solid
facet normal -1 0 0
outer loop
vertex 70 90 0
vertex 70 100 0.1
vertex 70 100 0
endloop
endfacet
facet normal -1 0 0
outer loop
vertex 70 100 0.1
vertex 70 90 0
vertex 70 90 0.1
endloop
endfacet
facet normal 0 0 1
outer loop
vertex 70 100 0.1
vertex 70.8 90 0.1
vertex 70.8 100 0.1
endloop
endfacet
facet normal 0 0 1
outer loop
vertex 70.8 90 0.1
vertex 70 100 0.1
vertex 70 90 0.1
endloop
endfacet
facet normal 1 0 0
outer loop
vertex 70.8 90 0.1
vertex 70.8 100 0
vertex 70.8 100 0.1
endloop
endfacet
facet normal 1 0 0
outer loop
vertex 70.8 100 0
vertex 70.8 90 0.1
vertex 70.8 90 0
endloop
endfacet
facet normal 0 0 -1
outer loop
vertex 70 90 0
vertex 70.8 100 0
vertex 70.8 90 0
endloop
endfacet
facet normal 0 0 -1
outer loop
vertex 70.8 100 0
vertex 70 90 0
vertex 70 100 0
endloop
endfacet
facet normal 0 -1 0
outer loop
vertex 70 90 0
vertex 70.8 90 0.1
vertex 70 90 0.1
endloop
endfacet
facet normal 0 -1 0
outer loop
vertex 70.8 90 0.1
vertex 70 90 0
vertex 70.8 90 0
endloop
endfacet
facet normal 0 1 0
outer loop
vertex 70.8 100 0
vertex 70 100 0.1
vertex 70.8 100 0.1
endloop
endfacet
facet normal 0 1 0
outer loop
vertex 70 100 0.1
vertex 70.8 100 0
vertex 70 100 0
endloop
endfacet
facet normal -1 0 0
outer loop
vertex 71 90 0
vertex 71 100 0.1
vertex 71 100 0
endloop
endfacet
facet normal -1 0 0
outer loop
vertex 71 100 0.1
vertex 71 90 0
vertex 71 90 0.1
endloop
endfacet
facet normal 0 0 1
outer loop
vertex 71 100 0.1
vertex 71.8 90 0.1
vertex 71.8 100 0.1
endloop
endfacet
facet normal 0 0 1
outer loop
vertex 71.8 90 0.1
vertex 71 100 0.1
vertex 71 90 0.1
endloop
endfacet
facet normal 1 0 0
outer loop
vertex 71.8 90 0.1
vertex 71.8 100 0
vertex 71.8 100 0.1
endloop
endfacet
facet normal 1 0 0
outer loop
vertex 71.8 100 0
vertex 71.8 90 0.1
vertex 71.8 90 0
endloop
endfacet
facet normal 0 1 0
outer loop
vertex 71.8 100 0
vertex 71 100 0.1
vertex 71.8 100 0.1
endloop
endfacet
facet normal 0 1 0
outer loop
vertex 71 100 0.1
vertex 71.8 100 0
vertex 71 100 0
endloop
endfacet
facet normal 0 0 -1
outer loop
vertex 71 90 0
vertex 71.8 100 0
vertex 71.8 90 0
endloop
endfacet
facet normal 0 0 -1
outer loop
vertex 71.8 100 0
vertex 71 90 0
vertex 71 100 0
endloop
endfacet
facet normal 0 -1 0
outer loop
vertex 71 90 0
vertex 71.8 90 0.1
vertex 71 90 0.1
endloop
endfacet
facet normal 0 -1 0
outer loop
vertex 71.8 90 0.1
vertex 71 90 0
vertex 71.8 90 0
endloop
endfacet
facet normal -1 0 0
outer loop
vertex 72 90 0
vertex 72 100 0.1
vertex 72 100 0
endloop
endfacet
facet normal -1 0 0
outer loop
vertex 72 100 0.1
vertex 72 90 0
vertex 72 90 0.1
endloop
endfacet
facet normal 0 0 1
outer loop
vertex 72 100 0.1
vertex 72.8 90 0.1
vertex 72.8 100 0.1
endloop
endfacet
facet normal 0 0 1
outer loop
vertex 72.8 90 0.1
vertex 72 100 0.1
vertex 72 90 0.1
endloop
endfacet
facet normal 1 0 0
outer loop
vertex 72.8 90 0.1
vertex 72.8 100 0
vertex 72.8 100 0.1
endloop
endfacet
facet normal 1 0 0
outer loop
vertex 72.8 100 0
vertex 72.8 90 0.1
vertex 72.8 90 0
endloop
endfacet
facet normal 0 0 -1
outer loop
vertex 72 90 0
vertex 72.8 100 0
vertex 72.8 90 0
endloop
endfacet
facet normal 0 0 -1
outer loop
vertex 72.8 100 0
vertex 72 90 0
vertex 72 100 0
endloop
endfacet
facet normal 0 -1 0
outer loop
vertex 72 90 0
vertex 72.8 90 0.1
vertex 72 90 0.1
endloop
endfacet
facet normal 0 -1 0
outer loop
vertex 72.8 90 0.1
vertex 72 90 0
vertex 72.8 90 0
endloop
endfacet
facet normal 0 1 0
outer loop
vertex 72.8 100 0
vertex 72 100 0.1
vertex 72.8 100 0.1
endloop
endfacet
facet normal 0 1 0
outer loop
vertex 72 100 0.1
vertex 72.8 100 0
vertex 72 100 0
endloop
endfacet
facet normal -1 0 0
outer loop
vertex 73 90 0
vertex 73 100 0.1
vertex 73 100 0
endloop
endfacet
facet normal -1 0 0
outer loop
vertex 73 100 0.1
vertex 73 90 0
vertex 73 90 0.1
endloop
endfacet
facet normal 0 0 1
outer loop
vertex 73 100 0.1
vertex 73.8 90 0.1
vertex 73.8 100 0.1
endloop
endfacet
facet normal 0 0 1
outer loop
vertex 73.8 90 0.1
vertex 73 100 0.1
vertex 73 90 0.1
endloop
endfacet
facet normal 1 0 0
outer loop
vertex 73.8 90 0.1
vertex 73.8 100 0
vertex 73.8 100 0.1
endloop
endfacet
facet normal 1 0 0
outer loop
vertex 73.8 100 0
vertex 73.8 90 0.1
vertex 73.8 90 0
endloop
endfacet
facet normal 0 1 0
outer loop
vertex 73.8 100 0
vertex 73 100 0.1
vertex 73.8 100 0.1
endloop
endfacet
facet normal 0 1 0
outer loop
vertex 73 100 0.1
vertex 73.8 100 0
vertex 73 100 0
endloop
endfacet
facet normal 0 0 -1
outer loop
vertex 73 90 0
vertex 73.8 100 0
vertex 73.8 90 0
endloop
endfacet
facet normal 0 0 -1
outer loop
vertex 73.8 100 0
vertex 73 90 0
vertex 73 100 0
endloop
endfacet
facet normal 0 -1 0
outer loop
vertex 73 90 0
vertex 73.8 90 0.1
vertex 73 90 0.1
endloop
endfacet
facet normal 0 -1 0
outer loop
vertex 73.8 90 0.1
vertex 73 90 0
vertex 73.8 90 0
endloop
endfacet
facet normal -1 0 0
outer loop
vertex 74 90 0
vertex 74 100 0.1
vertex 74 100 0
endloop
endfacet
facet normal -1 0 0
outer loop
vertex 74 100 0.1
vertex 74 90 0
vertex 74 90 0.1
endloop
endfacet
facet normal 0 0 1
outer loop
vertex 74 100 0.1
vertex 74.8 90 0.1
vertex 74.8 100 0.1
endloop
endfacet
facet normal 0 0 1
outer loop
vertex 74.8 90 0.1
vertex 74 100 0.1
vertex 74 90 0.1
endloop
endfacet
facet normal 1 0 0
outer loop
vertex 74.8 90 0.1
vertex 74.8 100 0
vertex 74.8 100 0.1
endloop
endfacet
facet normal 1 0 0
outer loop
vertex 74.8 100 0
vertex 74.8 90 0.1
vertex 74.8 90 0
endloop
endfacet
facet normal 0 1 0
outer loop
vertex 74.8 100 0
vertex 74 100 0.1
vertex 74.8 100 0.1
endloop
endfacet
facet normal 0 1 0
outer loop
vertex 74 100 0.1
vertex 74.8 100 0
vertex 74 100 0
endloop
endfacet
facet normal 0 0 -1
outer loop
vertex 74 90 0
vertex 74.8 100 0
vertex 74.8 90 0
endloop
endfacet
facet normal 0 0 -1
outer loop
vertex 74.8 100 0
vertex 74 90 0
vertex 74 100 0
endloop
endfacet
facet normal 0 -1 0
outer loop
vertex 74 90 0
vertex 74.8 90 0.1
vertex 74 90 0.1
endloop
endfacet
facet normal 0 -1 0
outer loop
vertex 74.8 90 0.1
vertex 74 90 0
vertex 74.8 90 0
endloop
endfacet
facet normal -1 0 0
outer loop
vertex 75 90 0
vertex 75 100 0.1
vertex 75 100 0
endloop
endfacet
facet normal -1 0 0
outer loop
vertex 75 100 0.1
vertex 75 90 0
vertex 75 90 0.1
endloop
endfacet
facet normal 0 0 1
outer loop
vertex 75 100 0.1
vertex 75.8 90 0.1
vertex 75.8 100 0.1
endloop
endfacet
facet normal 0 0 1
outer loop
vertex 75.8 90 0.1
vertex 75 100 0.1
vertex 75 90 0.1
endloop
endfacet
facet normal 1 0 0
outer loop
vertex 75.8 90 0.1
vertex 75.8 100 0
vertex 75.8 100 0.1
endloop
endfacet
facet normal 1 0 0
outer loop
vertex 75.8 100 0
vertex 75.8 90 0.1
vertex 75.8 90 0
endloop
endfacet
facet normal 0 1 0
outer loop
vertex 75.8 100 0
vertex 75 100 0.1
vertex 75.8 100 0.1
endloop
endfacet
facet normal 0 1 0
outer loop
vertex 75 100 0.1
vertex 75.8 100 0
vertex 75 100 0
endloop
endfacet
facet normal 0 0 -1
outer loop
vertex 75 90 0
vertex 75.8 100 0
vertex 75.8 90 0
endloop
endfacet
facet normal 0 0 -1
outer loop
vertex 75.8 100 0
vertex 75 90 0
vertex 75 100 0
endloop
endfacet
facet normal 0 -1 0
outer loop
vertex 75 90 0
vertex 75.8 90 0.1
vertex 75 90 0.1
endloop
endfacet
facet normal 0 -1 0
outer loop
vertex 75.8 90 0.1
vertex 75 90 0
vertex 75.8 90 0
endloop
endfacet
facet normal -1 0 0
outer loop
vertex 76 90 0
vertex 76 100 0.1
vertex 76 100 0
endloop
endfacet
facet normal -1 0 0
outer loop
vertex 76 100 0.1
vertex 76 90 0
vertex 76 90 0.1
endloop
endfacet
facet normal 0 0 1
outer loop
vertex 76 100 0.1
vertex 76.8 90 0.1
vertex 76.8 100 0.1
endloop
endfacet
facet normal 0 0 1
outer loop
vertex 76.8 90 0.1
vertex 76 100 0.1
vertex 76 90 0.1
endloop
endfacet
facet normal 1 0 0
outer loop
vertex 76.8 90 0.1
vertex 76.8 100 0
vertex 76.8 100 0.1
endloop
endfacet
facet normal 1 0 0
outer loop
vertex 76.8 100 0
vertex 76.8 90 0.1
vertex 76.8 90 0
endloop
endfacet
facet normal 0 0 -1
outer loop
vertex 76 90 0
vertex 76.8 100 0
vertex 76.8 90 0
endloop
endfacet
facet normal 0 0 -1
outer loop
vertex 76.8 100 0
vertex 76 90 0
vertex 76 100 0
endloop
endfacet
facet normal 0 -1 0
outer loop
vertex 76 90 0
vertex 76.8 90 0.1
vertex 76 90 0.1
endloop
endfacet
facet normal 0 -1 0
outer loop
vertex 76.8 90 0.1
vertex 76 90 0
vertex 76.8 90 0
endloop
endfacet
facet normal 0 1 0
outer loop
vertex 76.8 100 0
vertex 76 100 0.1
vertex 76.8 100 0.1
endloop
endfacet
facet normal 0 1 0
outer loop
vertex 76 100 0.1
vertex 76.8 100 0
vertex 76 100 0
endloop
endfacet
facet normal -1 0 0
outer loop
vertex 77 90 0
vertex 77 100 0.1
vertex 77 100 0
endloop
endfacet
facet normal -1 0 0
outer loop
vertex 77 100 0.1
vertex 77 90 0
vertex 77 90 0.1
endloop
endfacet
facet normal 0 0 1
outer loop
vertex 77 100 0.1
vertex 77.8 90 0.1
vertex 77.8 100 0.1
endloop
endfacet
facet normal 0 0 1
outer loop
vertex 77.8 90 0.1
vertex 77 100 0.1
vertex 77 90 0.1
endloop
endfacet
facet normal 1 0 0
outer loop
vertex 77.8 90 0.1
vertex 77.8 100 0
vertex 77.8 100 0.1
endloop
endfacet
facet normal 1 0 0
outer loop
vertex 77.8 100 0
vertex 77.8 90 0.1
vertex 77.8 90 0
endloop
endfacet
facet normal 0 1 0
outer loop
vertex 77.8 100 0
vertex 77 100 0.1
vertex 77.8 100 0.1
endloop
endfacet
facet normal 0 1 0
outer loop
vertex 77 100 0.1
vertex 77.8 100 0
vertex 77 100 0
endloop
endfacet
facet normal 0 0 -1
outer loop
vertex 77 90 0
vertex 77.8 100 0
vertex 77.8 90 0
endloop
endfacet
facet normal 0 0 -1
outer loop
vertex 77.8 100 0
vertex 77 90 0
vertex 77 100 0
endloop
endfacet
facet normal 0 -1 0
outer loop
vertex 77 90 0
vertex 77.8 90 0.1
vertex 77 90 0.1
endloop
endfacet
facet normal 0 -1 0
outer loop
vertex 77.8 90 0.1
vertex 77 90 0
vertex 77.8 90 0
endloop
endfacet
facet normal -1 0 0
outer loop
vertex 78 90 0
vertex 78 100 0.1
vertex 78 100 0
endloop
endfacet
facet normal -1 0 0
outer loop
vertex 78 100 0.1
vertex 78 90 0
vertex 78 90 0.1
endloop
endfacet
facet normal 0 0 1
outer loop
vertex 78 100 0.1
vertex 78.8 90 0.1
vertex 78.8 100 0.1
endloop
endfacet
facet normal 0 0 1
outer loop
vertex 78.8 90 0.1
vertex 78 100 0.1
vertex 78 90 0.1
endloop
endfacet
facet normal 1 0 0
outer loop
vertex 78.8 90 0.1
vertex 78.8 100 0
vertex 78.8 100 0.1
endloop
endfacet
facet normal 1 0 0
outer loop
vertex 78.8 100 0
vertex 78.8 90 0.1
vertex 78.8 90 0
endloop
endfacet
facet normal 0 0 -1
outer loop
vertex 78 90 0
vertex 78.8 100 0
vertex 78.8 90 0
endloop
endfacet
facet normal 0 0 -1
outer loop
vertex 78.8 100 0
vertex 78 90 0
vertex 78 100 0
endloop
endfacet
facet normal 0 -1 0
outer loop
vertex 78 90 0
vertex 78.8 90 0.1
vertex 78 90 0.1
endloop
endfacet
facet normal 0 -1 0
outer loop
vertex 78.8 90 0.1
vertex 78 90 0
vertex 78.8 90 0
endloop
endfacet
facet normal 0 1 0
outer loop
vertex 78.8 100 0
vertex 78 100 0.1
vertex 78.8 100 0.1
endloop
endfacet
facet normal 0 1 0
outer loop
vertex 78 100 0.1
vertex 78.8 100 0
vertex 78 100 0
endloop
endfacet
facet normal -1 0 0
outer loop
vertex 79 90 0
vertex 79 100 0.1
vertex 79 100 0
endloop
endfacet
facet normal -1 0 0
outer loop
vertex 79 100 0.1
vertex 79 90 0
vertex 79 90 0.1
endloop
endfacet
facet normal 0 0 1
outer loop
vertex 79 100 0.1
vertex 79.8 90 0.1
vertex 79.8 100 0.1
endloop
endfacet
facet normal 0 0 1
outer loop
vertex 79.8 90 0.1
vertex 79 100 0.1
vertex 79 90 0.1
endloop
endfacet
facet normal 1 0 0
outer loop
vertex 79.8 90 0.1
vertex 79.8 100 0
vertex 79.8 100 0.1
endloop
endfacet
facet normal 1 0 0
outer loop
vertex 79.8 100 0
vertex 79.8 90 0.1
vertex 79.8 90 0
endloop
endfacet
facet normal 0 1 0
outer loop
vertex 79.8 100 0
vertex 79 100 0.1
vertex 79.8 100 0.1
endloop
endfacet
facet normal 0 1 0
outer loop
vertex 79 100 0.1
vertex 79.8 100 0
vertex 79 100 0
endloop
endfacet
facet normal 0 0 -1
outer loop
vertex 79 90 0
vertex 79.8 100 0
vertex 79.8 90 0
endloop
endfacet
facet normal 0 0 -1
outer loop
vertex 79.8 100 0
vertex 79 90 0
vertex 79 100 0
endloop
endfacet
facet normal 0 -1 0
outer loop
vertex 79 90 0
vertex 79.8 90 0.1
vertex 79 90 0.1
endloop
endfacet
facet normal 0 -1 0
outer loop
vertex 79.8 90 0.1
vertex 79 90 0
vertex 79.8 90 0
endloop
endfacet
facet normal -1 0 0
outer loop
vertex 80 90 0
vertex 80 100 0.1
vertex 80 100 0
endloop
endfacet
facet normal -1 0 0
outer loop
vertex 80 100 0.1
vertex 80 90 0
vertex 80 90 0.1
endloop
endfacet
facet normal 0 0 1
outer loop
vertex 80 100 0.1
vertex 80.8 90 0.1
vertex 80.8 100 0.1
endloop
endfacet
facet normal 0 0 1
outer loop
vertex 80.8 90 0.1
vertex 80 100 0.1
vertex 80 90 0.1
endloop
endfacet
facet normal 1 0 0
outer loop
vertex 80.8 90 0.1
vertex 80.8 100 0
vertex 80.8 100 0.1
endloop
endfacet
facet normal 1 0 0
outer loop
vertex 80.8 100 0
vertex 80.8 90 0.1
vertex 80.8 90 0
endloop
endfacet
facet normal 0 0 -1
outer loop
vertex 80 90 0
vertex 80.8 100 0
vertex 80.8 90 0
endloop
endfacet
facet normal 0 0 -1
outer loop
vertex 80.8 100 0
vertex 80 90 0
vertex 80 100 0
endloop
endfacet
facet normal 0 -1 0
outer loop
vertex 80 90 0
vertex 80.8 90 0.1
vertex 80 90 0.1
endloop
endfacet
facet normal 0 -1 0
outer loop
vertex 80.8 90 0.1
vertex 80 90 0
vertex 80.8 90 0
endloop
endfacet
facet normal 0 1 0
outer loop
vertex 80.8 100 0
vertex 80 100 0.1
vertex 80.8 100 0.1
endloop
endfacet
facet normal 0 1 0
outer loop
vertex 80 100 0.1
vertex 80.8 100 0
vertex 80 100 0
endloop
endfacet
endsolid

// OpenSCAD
translate([10+60,10+80,0])
        for (i = [0 : 10]){
            translate([i,0,0])
                cube(size = [0.8,10,0.1]);
    }
